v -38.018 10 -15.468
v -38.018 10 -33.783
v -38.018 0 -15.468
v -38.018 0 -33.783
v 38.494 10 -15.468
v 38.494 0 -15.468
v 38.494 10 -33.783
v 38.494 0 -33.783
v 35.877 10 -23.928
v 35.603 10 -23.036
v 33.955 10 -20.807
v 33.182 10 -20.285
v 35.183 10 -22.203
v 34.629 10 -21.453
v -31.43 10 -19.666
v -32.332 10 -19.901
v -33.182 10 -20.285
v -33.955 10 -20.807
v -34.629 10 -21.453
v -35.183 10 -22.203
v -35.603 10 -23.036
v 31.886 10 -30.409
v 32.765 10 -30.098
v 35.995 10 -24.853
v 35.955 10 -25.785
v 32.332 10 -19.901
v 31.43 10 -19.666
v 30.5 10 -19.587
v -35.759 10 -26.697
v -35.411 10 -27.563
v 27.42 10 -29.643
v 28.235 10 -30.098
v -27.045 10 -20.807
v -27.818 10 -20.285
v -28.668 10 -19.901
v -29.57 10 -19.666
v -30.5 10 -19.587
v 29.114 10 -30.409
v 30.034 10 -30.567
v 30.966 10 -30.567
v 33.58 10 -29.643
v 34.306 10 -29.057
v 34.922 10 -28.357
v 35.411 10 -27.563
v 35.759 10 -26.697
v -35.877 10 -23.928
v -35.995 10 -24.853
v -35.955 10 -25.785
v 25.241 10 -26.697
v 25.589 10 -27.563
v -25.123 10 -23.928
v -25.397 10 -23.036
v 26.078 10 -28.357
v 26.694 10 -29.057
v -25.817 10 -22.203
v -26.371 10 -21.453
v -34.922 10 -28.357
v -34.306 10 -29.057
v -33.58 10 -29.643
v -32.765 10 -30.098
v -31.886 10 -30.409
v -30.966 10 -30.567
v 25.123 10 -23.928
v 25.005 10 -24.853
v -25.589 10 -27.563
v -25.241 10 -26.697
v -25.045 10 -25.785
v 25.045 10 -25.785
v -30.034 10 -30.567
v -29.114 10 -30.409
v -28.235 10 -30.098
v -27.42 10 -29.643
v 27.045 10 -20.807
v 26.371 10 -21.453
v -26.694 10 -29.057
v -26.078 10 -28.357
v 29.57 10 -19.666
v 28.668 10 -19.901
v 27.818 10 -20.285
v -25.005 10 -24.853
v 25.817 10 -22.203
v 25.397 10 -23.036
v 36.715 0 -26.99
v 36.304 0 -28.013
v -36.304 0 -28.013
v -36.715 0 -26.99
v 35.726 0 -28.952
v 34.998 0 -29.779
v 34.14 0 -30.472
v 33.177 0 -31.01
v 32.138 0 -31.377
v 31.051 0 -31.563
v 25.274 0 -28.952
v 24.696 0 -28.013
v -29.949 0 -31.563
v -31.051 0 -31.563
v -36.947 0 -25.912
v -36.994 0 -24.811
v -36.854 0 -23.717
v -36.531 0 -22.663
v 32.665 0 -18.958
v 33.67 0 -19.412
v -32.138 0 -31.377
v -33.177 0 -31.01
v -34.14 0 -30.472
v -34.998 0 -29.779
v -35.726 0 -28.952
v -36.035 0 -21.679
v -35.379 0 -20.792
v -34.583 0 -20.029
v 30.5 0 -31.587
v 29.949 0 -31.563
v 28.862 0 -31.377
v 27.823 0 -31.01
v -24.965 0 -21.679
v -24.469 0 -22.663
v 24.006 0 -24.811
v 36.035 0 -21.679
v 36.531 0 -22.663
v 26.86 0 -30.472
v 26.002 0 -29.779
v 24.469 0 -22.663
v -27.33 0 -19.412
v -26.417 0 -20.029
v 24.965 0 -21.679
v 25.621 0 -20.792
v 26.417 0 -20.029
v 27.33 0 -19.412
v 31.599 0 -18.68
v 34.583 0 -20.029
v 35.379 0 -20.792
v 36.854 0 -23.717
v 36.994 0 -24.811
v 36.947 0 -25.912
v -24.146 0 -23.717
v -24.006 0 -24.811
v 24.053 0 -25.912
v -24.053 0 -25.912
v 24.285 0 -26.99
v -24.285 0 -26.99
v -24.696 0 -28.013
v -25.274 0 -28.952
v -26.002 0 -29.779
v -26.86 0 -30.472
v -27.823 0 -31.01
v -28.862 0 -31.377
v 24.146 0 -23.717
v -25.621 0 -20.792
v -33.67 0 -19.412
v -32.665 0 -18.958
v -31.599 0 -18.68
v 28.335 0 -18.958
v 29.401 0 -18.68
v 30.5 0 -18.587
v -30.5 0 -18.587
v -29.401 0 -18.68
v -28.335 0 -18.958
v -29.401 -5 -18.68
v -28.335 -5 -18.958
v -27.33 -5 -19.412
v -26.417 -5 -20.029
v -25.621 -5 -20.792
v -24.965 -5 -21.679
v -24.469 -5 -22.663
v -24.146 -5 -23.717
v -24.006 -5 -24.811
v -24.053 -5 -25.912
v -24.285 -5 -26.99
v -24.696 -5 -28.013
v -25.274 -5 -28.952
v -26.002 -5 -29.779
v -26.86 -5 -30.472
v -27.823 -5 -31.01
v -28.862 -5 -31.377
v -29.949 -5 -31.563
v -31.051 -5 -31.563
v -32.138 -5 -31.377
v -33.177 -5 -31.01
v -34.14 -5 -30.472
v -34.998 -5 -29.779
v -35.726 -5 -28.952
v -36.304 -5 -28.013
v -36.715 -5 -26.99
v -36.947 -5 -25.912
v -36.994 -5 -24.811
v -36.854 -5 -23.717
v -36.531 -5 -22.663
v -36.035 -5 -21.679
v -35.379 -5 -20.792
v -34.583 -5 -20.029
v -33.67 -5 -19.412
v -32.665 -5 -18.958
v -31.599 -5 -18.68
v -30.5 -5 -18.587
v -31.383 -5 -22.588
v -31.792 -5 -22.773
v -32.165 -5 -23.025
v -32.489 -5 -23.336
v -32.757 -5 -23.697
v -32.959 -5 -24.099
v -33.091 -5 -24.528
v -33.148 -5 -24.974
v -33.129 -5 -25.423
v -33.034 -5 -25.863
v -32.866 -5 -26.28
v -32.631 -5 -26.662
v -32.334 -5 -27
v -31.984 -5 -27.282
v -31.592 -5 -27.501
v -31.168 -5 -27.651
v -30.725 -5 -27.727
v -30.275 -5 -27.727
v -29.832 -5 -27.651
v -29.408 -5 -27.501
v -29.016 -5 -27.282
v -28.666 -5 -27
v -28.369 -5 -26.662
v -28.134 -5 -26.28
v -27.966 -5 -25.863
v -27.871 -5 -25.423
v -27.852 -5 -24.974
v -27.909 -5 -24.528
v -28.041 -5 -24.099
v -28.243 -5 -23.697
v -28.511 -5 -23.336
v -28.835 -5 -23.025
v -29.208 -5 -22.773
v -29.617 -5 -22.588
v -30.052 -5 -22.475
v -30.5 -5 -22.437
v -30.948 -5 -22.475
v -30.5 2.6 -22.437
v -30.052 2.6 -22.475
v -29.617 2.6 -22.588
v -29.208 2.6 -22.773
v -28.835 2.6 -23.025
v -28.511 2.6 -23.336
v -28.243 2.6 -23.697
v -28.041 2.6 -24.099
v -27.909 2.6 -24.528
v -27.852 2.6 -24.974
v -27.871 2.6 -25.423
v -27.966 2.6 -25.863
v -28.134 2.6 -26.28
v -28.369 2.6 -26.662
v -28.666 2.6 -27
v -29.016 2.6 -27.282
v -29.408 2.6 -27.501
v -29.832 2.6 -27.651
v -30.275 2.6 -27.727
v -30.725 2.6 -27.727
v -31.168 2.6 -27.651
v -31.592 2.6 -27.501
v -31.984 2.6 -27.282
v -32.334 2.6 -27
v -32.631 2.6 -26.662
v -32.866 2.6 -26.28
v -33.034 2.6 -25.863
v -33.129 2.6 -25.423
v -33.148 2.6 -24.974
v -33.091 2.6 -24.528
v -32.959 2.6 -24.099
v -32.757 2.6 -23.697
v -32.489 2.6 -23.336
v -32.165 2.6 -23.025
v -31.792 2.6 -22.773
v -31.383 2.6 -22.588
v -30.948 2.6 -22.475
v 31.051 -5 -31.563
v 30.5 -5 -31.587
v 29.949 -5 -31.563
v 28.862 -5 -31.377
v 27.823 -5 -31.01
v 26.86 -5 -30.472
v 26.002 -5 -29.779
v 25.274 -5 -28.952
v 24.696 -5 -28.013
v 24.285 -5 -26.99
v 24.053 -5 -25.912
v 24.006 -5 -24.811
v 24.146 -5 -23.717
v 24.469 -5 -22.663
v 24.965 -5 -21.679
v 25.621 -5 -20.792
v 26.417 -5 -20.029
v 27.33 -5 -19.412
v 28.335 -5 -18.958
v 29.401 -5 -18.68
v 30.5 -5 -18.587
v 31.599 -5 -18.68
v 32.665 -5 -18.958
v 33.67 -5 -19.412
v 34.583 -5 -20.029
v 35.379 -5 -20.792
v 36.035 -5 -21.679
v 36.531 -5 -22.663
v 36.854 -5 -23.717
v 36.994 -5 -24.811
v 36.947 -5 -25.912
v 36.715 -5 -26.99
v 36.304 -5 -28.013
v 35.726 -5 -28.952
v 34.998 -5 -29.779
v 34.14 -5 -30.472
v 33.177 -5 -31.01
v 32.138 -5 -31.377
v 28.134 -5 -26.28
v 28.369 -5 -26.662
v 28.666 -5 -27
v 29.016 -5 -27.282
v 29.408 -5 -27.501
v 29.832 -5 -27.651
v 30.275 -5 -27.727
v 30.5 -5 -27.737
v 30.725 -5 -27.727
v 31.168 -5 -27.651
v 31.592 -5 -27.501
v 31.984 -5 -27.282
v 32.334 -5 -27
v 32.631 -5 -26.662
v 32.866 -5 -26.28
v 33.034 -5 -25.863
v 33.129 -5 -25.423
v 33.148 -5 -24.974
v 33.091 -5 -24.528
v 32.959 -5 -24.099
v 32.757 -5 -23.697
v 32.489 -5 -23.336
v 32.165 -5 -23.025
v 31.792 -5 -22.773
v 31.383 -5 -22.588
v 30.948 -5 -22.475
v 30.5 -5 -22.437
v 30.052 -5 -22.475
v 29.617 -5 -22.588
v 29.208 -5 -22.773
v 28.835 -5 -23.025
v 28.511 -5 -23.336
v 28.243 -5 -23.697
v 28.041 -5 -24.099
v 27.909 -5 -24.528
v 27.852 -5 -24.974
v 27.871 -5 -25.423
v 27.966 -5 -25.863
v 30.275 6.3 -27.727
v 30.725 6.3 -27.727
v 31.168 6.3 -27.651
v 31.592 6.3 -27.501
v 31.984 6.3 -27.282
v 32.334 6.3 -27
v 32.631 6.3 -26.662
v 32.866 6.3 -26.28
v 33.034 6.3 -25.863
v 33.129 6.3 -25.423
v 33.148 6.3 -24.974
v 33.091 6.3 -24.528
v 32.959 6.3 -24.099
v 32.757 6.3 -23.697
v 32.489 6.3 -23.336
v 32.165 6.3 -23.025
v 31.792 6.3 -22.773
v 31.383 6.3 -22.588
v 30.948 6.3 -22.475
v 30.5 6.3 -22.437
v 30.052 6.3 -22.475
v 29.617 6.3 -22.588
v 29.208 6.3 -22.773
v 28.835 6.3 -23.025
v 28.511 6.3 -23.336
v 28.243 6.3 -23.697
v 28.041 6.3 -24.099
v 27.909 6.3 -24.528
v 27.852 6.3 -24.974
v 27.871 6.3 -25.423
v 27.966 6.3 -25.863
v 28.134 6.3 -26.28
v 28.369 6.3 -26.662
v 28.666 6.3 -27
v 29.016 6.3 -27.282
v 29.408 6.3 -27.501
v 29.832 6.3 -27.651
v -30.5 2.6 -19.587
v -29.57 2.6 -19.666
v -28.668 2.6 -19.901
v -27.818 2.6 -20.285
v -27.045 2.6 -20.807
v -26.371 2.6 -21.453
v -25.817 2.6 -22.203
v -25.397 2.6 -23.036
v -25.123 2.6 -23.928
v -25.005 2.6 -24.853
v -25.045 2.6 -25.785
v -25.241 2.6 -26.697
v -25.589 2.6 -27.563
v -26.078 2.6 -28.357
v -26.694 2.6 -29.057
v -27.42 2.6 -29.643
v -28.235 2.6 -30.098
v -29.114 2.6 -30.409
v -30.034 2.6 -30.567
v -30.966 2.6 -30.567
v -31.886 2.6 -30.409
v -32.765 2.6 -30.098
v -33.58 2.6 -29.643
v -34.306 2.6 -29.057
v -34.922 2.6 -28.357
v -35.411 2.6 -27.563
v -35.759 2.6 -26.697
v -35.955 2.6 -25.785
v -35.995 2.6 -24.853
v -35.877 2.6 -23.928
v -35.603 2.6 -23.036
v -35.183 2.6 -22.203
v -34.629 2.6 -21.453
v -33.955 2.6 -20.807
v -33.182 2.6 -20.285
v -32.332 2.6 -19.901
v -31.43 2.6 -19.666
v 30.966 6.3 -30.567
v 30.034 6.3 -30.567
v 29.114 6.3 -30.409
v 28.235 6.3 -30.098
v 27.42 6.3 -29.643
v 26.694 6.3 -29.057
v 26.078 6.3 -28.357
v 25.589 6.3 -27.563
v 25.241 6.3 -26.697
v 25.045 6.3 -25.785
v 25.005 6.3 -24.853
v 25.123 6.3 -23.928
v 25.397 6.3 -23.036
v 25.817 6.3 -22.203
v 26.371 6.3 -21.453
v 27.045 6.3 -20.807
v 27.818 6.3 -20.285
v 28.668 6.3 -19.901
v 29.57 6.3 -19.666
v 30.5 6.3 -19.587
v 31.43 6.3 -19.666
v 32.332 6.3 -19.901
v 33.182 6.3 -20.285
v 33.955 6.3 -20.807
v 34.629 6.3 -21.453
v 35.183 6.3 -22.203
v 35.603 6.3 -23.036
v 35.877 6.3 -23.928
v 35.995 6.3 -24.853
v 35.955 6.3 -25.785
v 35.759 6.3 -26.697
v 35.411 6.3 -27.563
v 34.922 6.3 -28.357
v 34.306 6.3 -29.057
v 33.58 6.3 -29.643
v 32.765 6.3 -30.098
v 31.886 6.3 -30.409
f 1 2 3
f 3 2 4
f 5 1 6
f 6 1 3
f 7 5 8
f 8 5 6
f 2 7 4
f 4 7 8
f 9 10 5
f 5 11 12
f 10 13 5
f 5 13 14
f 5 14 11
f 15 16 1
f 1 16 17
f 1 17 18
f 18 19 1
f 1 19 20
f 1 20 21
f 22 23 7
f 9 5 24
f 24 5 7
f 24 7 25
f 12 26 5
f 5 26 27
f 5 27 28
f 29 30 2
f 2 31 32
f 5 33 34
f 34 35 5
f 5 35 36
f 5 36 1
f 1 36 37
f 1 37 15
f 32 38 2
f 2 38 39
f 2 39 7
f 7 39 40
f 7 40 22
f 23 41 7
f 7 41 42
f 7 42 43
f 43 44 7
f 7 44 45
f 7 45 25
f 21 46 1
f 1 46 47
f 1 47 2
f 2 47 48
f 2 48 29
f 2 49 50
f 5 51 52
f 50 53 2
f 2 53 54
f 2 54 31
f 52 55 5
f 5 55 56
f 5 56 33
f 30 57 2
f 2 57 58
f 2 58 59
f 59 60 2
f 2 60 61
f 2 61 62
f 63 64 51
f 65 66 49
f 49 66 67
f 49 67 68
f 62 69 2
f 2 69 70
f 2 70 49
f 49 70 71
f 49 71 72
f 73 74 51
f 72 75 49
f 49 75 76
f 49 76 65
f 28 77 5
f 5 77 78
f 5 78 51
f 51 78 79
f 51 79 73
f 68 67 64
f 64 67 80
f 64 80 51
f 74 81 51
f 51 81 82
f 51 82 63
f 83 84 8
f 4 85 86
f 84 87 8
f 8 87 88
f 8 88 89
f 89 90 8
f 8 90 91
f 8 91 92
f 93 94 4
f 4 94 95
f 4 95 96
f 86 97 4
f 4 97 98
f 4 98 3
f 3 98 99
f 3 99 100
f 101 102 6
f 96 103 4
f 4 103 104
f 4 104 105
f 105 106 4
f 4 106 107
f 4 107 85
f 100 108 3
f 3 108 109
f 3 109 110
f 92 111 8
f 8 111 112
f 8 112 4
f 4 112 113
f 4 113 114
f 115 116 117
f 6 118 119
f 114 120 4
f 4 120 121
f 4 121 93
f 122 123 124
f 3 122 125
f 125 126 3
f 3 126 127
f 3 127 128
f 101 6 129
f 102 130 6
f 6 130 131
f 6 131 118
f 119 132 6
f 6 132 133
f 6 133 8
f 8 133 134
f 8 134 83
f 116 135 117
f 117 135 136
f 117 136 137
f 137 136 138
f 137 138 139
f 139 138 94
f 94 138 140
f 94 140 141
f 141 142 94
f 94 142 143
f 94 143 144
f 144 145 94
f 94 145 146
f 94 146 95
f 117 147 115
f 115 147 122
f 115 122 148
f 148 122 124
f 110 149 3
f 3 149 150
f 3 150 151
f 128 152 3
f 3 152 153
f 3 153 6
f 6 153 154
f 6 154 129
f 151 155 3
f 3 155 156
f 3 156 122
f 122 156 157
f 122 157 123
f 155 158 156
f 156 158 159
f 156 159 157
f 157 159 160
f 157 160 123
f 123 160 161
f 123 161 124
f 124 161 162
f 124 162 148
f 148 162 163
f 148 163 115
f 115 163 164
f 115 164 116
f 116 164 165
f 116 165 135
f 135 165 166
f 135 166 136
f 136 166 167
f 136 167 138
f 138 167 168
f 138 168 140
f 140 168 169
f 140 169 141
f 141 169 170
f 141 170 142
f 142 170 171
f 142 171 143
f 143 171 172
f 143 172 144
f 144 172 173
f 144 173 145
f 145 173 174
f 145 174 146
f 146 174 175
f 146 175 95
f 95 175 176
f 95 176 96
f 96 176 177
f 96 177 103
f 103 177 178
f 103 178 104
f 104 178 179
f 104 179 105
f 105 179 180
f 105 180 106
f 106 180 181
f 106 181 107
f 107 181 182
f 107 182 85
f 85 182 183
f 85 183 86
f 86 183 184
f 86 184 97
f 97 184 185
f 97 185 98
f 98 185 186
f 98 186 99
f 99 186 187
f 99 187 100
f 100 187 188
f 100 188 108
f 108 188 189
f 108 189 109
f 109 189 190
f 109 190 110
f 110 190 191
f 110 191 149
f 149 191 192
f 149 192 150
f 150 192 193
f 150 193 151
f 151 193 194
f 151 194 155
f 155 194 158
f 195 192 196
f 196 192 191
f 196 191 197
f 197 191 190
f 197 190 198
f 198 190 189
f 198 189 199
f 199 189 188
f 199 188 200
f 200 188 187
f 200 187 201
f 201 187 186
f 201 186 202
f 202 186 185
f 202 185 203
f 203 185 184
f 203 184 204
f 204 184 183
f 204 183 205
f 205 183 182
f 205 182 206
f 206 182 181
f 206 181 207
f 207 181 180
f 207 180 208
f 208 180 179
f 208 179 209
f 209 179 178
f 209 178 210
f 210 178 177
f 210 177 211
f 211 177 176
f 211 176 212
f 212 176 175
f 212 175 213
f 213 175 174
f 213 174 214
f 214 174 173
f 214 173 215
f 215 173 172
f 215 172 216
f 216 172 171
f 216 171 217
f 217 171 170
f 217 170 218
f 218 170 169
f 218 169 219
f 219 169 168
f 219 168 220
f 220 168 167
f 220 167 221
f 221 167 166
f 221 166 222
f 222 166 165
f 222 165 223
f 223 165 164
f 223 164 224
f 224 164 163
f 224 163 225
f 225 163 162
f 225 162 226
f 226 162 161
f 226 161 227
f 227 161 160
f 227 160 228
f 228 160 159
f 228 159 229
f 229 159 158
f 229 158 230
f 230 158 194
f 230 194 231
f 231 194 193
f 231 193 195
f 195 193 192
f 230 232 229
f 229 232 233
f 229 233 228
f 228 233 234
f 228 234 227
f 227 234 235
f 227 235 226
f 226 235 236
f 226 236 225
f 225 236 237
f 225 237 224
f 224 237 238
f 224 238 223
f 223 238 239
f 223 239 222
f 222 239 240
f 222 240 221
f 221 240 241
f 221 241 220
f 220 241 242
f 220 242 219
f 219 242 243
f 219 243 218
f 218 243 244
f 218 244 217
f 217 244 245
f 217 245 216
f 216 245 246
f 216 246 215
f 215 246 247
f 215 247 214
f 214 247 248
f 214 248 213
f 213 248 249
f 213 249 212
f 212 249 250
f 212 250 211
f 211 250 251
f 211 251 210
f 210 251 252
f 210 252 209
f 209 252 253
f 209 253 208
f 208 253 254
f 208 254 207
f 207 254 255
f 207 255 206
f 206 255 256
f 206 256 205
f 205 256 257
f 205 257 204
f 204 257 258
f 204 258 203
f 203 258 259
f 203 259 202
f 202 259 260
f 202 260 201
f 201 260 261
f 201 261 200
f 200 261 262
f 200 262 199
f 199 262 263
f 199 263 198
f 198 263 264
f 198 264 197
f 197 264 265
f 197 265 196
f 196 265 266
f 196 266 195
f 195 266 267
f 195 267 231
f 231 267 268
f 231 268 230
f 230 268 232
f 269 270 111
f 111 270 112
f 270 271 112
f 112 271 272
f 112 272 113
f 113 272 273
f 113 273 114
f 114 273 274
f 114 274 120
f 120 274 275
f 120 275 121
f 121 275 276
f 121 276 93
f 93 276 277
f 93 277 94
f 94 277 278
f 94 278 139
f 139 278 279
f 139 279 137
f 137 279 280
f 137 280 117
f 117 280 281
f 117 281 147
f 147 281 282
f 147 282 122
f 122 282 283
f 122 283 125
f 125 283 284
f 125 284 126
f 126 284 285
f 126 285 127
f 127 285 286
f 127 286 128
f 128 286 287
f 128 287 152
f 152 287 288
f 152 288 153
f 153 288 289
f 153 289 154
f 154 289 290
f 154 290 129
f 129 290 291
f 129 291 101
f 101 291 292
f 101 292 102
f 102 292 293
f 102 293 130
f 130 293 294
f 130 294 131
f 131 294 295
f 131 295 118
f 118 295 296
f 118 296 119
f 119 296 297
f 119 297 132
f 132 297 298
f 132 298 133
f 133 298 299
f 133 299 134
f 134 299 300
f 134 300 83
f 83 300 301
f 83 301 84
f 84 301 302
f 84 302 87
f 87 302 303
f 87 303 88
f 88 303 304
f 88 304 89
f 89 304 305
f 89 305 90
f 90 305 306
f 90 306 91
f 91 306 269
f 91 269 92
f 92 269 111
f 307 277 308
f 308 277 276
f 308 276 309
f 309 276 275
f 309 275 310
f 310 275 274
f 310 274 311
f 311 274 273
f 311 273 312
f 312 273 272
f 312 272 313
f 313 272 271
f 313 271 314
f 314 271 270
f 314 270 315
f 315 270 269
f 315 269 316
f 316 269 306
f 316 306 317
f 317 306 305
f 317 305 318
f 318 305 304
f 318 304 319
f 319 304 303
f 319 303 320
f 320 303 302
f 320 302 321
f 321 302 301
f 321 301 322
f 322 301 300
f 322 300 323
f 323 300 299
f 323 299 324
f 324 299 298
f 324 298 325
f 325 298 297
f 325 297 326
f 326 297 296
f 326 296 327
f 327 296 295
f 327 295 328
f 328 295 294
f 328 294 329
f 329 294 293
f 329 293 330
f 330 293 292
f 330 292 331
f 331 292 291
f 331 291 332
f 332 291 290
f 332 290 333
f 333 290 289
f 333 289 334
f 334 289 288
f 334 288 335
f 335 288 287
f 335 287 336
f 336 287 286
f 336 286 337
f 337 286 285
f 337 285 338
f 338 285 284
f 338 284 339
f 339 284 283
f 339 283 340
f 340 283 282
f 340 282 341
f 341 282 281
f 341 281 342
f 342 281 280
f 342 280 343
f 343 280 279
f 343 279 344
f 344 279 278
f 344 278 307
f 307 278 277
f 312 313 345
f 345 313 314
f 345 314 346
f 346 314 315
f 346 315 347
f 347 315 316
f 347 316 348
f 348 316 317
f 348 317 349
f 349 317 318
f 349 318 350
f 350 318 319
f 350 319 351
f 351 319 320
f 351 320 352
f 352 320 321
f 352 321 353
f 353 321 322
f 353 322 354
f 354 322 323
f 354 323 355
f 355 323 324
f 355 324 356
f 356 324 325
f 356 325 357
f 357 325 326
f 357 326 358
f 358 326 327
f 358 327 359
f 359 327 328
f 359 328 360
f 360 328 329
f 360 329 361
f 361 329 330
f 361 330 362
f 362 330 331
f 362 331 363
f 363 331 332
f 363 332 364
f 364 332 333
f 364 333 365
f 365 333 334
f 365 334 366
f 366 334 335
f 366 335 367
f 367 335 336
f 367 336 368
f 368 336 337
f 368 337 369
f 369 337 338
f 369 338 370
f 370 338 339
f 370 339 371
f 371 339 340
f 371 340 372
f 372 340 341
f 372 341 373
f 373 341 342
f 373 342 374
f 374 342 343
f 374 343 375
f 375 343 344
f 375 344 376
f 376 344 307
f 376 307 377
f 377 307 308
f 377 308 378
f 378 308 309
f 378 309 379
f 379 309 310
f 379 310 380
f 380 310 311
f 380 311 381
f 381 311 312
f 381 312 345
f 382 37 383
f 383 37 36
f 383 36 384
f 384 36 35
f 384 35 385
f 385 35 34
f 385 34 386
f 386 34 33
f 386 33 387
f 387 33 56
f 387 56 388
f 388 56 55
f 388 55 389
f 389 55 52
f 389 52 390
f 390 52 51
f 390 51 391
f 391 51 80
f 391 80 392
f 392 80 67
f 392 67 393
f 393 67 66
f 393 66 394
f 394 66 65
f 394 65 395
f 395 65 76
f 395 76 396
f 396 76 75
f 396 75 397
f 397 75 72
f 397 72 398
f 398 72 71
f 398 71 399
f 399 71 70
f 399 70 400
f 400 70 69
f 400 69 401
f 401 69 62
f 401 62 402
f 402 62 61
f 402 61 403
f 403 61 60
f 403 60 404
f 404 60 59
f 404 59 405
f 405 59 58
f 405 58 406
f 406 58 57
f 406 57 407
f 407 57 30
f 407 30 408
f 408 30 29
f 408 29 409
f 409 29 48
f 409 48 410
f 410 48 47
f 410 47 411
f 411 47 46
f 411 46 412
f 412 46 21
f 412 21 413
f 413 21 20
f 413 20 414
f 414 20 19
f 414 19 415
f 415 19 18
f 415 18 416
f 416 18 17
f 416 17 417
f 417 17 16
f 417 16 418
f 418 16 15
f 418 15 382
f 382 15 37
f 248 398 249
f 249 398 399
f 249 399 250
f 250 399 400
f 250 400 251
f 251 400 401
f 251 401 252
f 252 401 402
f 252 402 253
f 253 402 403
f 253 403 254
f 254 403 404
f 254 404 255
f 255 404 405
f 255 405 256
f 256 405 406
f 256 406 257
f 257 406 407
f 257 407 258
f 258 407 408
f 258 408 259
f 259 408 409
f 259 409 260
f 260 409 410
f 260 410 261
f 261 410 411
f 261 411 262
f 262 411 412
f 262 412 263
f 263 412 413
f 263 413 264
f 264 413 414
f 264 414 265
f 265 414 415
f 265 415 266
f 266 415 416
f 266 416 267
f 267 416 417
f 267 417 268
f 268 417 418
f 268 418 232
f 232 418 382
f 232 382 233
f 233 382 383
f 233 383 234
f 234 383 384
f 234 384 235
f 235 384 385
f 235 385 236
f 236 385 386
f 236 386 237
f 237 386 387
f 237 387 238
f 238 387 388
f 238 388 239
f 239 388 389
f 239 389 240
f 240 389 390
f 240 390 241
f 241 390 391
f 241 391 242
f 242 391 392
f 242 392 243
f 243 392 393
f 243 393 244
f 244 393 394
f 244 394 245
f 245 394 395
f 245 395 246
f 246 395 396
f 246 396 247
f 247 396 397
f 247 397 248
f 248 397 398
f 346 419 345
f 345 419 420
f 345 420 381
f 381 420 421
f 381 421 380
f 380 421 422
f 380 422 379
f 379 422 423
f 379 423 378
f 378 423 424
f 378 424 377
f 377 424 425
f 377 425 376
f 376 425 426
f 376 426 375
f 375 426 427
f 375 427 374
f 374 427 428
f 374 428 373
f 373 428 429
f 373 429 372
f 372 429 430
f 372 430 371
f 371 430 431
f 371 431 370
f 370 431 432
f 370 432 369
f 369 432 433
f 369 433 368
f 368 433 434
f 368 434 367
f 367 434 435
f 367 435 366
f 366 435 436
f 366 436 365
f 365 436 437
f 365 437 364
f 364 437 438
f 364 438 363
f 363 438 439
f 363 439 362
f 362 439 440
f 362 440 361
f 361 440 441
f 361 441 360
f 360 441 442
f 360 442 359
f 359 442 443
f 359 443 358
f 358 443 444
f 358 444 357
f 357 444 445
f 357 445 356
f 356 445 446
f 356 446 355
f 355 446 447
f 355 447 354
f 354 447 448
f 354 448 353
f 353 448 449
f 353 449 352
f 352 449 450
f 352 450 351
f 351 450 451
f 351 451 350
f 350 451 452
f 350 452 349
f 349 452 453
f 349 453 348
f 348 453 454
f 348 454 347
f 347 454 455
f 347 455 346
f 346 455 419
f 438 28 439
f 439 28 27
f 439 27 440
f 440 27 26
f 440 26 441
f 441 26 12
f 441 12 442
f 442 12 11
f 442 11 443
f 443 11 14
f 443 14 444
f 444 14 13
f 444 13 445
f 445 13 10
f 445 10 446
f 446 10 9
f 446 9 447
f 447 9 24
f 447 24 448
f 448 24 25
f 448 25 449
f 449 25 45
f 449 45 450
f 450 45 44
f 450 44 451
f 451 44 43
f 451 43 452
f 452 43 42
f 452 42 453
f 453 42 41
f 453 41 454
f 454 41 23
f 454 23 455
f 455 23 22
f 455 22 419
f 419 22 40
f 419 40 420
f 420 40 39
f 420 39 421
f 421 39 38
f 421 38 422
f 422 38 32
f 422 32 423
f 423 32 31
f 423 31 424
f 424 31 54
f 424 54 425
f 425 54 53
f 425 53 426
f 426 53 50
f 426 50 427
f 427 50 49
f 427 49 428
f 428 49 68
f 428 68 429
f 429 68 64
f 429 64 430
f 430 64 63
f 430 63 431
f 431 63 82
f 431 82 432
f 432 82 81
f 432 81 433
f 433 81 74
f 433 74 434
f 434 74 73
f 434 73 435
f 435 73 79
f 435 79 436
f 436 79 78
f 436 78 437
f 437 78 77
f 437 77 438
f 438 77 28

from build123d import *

# Parameters (mm, degrees)
CROQUIS2_W                                           = 76.512018684
CROQUIS2_H                                           = 18.314660831
SALIENTE_EXTRUIR1_DEPTH                              = 10
CROQUIS1_R                                           = 6.5
CROQUIS1_R_2                                         = 2.65
SALIENTE_EXTRUIR2_DEPTH                              = 5
CORTAR_EXTRUIR1_DEPTH                                = 31
CORTAR_EXTRUIR1_DEPTH_BACK                           = 50
CROQUIS4_R                                           = 2.5
REFRENTADO_PARA_TORNILLO_CON_CABEZA_TRON_D           = 5.3
REFRENTADO_PARA_TORNILLO_CON_CABEZA_TRON_CBORE_D     = 11
REFRENTADO_PARA_TORNILLO_CON_CABEZA_TRON_CBORE_DEPTH = 3.7
REFRENTADO_PARA_TORNILLO_CON_CABEZA_2_D              = 5.3
REFRENTADO_PARA_TORNILLO_CON_CABEZA_2_CBORE_D        = 11
REFRENTADO_PARA_TORNILLO_CON_CABEZA_2_CBORE_DEPTH    = 3.7
REFRENTADO_PARA_TORNILLO_CON_CABEZA_3_D              = 5.3
REFRENTADO_PARA_TORNILLO_CON_CABEZA_3_CBORE_D        = 11
REFRENTADO_PARA_TORNILLO_CON_CABEZA_3_CBORE_DEPTH    = 3.7


with BuildPart() as part:
    # Croquis2 → Saliente-Extruir1 (new body)
    with BuildSketch(Plane(origin=(0, 0, 0), x_dir=(1, 0, 0), z_dir=(0, 1, 0))):
        with Locations((0.23849107, 24.625561378)):
            Rectangle(CROQUIS2_W, CROQUIS2_H)
    extrude(amount=SALIENTE_EXTRUIR1_DEPTH)

    # Croquis1 → Saliente-Extruir2 (add)
    # profile 1 of 2: a face of its own
    with BuildSketch(Plane(origin=(0, 0, 0), x_dir=(1, 0, 0), z_dir=(0, 1, 0))):
        with Locations(Location((-30.5, 25.086633895, 0), (0, 0, 270))):
            Circle(CROQUIS1_R)
        with Locations(Location((-30.5, 25.086633895, 0), (0, 0, 270))):
            Circle(CROQUIS1_R_2, mode=Mode.SUBTRACT)
    # profile 2 of 2: a face of its own
    with BuildSketch(Plane(origin=(0, 0, 0), x_dir=(1, 0, 0), z_dir=(0, 1, 0))):
        with Locations(Location((30.5, 25.086633895, 0), (0, 0, 90))):
            Circle(CROQUIS1_R)
        with Locations(Location((30.5, 25.086633895, 0), (0, 0, 270))):
            Circle(CROQUIS1_R_2, mode=Mode.SUBTRACT)
    extrude(amount=-SALIENTE_EXTRUIR2_DEPTH)

    # Croquis4 → Cortar-Extruir1 (cut, two sides: drawn at the far end of the back side and taken through both)
    with BuildSketch(Plane.XZ.offset(-CORTAR_EXTRUIR1_DEPTH_BACK)):
        with Locations(Location((-30.5, -25.086633895, 0), (0, 0, 90))):
            Circle(CROQUIS4_R)
        with Locations(Location((30.5, -25.086633895, 0), (0, 0, 90))):
            Circle(CROQUIS4_R)
    extrude(amount=CORTAR_EXTRUIR1_DEPTH + CORTAR_EXTRUIR1_DEPTH_BACK, mode=Mode.SUBTRACT)

    # Refrentado para tornillo con cabeza tron (through all)
    with Locations(Plane(origin=(-30.5, 10, -25.086633895), x_dir=(0, 0, 1), z_dir=(0, 1, 0))):
        with Locations((0, 0)):
            CounterBoreHole(REFRENTADO_PARA_TORNILLO_CON_CABEZA_TRON_D / 2, REFRENTADO_PARA_TORNILLO_CON_CABEZA_TRON_CBORE_D / 2, REFRENTADO_PARA_TORNILLO_CON_CABEZA_TRON_CBORE_DEPTH)

    # Refrentado para tornillo con cabeza  2 (through all)
    with Locations(Plane(origin=(-30.5, 6.3, -25.086633895), x_dir=(0, 0, 1), z_dir=(0, 1, 0))):
        with Locations((0, 0)):
            CounterBoreHole(REFRENTADO_PARA_TORNILLO_CON_CABEZA_2_D / 2, REFRENTADO_PARA_TORNILLO_CON_CABEZA_2_CBORE_D / 2, REFRENTADO_PARA_TORNILLO_CON_CABEZA_2_CBORE_DEPTH)

    # Refrentado para tornillo con cabeza  3 (through all)
    with Locations(Plane(origin=(30.5, 10, -25.086633895), x_dir=(0, 0, 1), z_dir=(0, 1, 0))):
        with Locations((0, 0)):
            CounterBoreHole(REFRENTADO_PARA_TORNILLO_CON_CABEZA_3_D / 2, REFRENTADO_PARA_TORNILLO_CON_CABEZA_3_CBORE_D / 2, REFRENTADO_PARA_TORNILLO_CON_CABEZA_3_CBORE_DEPTH)


solid = part.part
